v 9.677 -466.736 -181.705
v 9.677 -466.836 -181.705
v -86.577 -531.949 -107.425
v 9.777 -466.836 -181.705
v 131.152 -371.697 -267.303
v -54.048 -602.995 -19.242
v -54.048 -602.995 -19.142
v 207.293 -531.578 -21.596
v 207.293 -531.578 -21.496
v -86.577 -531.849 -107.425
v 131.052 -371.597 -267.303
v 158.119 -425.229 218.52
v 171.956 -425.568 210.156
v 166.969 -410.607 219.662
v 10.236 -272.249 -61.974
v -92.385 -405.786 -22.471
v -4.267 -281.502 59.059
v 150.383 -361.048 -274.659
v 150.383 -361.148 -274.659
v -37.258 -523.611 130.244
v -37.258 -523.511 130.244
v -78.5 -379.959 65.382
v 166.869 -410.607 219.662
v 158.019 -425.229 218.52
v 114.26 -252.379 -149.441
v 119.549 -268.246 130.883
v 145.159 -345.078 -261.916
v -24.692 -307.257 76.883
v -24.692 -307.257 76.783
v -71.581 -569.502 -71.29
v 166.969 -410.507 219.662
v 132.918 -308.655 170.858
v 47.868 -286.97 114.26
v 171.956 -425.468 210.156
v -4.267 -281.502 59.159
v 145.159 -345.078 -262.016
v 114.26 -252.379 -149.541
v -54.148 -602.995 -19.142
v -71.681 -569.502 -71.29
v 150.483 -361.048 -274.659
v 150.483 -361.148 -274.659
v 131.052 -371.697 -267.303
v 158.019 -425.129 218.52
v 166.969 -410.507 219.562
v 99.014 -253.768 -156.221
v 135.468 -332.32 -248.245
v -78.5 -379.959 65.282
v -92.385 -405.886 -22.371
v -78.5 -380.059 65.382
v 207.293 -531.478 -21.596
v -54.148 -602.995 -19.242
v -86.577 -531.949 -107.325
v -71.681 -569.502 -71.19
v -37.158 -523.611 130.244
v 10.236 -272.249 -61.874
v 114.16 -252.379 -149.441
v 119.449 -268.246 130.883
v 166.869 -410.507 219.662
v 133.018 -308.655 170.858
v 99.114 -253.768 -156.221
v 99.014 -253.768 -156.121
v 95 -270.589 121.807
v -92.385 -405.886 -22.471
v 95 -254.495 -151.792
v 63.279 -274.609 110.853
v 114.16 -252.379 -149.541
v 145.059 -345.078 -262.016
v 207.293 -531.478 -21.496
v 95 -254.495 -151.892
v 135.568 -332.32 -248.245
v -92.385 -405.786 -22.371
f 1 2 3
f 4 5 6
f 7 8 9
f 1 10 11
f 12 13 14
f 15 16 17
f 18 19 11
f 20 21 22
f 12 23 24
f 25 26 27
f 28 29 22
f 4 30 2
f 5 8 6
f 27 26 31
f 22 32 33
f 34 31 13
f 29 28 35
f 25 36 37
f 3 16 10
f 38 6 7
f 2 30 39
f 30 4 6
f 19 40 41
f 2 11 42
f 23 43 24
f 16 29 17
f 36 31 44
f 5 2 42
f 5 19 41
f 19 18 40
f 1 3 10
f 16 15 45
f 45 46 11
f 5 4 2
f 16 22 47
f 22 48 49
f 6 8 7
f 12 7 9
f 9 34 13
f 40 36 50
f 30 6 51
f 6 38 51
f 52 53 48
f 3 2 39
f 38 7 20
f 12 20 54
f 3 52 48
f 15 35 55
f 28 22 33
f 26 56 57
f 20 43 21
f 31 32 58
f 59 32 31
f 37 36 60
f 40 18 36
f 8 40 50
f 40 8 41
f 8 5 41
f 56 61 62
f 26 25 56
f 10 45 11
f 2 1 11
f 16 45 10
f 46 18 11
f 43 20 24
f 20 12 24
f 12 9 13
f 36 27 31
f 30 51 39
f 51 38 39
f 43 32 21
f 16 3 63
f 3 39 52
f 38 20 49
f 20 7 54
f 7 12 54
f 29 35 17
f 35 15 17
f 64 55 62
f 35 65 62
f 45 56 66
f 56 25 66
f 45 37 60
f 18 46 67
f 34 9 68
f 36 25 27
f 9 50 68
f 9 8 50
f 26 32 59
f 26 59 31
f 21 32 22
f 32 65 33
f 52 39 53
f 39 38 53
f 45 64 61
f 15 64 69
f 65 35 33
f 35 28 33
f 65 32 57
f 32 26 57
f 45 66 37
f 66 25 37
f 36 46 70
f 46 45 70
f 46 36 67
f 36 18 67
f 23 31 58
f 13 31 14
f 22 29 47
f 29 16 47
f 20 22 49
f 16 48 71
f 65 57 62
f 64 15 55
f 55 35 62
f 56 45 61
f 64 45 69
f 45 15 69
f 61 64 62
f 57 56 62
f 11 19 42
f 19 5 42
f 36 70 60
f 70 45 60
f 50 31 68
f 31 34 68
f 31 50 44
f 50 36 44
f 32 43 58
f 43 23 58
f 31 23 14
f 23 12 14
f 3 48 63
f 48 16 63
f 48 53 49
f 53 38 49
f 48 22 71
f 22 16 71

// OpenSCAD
hull(){ translate([9.67703349282,-466.836124402,-181.704545455])cube(0.1,0.1,0.1);
translate([-86.5768725361,-531.949060833,-107.424570354])cube(0.1,0.1,0.1);
translate([-71.6808589411,-569.502036283,-71.2902628656])cube(0.1,0.1,0.1);
translate([95.0,-254.594594595,-151.891891892])cube(0.1,0.1,0.1);
translate([95.0,-270.688622754,121.706586826])cube(0.1,0.1,0.1);
translate([47.8684389911,-287.069529652,114.160190866])cube(0.1,0.1,0.1);
translate([63.2793546108,-274.709103757,110.753150395])cube(0.1,0.1,0.1);
translate([99.0142611911,-253.867687838,-156.220784366])cube(0.1,0.1,0.1);
translate([158.019074512,-425.229355155,218.419581629])cube(0.1,0.1,0.1);
translate([-54.1479546842,-602.995387016,-19.2419103182])cube(0.1,0.1,0.1);
translate([-37.2576081831,-523.610758461,130.143820958])cube(0.1,0.1,0.1);
translate([-78.49959996,-380.059255926,65.2825282528])cube(0.1,0.1,0.1);
translate([-24.6918365394,-307.357163365,76.7834242511])cube(0.1,0.1,0.1);
translate([-92.3846787479,-405.885502471,-22.471169687])cube(0.1,0.1,0.1);
translate([-4.26742331864,-281.601632117,59.0591876935])cube(0.1,0.1,0.1);
translate([10.2365415987,-272.349102773,-61.9738988581])cube(0.1,0.1,0.1);
translate([171.855862584,-425.567587752,210.056011949])cube(0.1,0.1,0.1);
translate([207.19266055,-531.577981651,-21.5963302752])cube(0.1,0.1,0.1);
translate([166.869158879,-410.607476636,219.561915888])cube(0.1,0.1,0.1);
translate([132.91831357,-308.754940711,170.757575758])cube(0.1,0.1,0.1);
translate([114.15960452,-252.478813559,-149.540960452])cube(0.1,0.1,0.1);
translate([119.448742747,-268.34622824,130.783365571])cube(0.1,0.1,0.1);
translate([135.467518347,-332.4204947,-248.245447132])cube(0.1,0.1,0.1);
translate([131.051770306,-371.697411485,-267.302886046])cube(0.1,0.1,0.1);
translate([145.059288538,-345.177865613,-262.015810277])cube(0.1,0.1,0.1);
translate([150.382695507,-361.148086522,-274.65890183])cube(0.1,0.1,0.1); }
